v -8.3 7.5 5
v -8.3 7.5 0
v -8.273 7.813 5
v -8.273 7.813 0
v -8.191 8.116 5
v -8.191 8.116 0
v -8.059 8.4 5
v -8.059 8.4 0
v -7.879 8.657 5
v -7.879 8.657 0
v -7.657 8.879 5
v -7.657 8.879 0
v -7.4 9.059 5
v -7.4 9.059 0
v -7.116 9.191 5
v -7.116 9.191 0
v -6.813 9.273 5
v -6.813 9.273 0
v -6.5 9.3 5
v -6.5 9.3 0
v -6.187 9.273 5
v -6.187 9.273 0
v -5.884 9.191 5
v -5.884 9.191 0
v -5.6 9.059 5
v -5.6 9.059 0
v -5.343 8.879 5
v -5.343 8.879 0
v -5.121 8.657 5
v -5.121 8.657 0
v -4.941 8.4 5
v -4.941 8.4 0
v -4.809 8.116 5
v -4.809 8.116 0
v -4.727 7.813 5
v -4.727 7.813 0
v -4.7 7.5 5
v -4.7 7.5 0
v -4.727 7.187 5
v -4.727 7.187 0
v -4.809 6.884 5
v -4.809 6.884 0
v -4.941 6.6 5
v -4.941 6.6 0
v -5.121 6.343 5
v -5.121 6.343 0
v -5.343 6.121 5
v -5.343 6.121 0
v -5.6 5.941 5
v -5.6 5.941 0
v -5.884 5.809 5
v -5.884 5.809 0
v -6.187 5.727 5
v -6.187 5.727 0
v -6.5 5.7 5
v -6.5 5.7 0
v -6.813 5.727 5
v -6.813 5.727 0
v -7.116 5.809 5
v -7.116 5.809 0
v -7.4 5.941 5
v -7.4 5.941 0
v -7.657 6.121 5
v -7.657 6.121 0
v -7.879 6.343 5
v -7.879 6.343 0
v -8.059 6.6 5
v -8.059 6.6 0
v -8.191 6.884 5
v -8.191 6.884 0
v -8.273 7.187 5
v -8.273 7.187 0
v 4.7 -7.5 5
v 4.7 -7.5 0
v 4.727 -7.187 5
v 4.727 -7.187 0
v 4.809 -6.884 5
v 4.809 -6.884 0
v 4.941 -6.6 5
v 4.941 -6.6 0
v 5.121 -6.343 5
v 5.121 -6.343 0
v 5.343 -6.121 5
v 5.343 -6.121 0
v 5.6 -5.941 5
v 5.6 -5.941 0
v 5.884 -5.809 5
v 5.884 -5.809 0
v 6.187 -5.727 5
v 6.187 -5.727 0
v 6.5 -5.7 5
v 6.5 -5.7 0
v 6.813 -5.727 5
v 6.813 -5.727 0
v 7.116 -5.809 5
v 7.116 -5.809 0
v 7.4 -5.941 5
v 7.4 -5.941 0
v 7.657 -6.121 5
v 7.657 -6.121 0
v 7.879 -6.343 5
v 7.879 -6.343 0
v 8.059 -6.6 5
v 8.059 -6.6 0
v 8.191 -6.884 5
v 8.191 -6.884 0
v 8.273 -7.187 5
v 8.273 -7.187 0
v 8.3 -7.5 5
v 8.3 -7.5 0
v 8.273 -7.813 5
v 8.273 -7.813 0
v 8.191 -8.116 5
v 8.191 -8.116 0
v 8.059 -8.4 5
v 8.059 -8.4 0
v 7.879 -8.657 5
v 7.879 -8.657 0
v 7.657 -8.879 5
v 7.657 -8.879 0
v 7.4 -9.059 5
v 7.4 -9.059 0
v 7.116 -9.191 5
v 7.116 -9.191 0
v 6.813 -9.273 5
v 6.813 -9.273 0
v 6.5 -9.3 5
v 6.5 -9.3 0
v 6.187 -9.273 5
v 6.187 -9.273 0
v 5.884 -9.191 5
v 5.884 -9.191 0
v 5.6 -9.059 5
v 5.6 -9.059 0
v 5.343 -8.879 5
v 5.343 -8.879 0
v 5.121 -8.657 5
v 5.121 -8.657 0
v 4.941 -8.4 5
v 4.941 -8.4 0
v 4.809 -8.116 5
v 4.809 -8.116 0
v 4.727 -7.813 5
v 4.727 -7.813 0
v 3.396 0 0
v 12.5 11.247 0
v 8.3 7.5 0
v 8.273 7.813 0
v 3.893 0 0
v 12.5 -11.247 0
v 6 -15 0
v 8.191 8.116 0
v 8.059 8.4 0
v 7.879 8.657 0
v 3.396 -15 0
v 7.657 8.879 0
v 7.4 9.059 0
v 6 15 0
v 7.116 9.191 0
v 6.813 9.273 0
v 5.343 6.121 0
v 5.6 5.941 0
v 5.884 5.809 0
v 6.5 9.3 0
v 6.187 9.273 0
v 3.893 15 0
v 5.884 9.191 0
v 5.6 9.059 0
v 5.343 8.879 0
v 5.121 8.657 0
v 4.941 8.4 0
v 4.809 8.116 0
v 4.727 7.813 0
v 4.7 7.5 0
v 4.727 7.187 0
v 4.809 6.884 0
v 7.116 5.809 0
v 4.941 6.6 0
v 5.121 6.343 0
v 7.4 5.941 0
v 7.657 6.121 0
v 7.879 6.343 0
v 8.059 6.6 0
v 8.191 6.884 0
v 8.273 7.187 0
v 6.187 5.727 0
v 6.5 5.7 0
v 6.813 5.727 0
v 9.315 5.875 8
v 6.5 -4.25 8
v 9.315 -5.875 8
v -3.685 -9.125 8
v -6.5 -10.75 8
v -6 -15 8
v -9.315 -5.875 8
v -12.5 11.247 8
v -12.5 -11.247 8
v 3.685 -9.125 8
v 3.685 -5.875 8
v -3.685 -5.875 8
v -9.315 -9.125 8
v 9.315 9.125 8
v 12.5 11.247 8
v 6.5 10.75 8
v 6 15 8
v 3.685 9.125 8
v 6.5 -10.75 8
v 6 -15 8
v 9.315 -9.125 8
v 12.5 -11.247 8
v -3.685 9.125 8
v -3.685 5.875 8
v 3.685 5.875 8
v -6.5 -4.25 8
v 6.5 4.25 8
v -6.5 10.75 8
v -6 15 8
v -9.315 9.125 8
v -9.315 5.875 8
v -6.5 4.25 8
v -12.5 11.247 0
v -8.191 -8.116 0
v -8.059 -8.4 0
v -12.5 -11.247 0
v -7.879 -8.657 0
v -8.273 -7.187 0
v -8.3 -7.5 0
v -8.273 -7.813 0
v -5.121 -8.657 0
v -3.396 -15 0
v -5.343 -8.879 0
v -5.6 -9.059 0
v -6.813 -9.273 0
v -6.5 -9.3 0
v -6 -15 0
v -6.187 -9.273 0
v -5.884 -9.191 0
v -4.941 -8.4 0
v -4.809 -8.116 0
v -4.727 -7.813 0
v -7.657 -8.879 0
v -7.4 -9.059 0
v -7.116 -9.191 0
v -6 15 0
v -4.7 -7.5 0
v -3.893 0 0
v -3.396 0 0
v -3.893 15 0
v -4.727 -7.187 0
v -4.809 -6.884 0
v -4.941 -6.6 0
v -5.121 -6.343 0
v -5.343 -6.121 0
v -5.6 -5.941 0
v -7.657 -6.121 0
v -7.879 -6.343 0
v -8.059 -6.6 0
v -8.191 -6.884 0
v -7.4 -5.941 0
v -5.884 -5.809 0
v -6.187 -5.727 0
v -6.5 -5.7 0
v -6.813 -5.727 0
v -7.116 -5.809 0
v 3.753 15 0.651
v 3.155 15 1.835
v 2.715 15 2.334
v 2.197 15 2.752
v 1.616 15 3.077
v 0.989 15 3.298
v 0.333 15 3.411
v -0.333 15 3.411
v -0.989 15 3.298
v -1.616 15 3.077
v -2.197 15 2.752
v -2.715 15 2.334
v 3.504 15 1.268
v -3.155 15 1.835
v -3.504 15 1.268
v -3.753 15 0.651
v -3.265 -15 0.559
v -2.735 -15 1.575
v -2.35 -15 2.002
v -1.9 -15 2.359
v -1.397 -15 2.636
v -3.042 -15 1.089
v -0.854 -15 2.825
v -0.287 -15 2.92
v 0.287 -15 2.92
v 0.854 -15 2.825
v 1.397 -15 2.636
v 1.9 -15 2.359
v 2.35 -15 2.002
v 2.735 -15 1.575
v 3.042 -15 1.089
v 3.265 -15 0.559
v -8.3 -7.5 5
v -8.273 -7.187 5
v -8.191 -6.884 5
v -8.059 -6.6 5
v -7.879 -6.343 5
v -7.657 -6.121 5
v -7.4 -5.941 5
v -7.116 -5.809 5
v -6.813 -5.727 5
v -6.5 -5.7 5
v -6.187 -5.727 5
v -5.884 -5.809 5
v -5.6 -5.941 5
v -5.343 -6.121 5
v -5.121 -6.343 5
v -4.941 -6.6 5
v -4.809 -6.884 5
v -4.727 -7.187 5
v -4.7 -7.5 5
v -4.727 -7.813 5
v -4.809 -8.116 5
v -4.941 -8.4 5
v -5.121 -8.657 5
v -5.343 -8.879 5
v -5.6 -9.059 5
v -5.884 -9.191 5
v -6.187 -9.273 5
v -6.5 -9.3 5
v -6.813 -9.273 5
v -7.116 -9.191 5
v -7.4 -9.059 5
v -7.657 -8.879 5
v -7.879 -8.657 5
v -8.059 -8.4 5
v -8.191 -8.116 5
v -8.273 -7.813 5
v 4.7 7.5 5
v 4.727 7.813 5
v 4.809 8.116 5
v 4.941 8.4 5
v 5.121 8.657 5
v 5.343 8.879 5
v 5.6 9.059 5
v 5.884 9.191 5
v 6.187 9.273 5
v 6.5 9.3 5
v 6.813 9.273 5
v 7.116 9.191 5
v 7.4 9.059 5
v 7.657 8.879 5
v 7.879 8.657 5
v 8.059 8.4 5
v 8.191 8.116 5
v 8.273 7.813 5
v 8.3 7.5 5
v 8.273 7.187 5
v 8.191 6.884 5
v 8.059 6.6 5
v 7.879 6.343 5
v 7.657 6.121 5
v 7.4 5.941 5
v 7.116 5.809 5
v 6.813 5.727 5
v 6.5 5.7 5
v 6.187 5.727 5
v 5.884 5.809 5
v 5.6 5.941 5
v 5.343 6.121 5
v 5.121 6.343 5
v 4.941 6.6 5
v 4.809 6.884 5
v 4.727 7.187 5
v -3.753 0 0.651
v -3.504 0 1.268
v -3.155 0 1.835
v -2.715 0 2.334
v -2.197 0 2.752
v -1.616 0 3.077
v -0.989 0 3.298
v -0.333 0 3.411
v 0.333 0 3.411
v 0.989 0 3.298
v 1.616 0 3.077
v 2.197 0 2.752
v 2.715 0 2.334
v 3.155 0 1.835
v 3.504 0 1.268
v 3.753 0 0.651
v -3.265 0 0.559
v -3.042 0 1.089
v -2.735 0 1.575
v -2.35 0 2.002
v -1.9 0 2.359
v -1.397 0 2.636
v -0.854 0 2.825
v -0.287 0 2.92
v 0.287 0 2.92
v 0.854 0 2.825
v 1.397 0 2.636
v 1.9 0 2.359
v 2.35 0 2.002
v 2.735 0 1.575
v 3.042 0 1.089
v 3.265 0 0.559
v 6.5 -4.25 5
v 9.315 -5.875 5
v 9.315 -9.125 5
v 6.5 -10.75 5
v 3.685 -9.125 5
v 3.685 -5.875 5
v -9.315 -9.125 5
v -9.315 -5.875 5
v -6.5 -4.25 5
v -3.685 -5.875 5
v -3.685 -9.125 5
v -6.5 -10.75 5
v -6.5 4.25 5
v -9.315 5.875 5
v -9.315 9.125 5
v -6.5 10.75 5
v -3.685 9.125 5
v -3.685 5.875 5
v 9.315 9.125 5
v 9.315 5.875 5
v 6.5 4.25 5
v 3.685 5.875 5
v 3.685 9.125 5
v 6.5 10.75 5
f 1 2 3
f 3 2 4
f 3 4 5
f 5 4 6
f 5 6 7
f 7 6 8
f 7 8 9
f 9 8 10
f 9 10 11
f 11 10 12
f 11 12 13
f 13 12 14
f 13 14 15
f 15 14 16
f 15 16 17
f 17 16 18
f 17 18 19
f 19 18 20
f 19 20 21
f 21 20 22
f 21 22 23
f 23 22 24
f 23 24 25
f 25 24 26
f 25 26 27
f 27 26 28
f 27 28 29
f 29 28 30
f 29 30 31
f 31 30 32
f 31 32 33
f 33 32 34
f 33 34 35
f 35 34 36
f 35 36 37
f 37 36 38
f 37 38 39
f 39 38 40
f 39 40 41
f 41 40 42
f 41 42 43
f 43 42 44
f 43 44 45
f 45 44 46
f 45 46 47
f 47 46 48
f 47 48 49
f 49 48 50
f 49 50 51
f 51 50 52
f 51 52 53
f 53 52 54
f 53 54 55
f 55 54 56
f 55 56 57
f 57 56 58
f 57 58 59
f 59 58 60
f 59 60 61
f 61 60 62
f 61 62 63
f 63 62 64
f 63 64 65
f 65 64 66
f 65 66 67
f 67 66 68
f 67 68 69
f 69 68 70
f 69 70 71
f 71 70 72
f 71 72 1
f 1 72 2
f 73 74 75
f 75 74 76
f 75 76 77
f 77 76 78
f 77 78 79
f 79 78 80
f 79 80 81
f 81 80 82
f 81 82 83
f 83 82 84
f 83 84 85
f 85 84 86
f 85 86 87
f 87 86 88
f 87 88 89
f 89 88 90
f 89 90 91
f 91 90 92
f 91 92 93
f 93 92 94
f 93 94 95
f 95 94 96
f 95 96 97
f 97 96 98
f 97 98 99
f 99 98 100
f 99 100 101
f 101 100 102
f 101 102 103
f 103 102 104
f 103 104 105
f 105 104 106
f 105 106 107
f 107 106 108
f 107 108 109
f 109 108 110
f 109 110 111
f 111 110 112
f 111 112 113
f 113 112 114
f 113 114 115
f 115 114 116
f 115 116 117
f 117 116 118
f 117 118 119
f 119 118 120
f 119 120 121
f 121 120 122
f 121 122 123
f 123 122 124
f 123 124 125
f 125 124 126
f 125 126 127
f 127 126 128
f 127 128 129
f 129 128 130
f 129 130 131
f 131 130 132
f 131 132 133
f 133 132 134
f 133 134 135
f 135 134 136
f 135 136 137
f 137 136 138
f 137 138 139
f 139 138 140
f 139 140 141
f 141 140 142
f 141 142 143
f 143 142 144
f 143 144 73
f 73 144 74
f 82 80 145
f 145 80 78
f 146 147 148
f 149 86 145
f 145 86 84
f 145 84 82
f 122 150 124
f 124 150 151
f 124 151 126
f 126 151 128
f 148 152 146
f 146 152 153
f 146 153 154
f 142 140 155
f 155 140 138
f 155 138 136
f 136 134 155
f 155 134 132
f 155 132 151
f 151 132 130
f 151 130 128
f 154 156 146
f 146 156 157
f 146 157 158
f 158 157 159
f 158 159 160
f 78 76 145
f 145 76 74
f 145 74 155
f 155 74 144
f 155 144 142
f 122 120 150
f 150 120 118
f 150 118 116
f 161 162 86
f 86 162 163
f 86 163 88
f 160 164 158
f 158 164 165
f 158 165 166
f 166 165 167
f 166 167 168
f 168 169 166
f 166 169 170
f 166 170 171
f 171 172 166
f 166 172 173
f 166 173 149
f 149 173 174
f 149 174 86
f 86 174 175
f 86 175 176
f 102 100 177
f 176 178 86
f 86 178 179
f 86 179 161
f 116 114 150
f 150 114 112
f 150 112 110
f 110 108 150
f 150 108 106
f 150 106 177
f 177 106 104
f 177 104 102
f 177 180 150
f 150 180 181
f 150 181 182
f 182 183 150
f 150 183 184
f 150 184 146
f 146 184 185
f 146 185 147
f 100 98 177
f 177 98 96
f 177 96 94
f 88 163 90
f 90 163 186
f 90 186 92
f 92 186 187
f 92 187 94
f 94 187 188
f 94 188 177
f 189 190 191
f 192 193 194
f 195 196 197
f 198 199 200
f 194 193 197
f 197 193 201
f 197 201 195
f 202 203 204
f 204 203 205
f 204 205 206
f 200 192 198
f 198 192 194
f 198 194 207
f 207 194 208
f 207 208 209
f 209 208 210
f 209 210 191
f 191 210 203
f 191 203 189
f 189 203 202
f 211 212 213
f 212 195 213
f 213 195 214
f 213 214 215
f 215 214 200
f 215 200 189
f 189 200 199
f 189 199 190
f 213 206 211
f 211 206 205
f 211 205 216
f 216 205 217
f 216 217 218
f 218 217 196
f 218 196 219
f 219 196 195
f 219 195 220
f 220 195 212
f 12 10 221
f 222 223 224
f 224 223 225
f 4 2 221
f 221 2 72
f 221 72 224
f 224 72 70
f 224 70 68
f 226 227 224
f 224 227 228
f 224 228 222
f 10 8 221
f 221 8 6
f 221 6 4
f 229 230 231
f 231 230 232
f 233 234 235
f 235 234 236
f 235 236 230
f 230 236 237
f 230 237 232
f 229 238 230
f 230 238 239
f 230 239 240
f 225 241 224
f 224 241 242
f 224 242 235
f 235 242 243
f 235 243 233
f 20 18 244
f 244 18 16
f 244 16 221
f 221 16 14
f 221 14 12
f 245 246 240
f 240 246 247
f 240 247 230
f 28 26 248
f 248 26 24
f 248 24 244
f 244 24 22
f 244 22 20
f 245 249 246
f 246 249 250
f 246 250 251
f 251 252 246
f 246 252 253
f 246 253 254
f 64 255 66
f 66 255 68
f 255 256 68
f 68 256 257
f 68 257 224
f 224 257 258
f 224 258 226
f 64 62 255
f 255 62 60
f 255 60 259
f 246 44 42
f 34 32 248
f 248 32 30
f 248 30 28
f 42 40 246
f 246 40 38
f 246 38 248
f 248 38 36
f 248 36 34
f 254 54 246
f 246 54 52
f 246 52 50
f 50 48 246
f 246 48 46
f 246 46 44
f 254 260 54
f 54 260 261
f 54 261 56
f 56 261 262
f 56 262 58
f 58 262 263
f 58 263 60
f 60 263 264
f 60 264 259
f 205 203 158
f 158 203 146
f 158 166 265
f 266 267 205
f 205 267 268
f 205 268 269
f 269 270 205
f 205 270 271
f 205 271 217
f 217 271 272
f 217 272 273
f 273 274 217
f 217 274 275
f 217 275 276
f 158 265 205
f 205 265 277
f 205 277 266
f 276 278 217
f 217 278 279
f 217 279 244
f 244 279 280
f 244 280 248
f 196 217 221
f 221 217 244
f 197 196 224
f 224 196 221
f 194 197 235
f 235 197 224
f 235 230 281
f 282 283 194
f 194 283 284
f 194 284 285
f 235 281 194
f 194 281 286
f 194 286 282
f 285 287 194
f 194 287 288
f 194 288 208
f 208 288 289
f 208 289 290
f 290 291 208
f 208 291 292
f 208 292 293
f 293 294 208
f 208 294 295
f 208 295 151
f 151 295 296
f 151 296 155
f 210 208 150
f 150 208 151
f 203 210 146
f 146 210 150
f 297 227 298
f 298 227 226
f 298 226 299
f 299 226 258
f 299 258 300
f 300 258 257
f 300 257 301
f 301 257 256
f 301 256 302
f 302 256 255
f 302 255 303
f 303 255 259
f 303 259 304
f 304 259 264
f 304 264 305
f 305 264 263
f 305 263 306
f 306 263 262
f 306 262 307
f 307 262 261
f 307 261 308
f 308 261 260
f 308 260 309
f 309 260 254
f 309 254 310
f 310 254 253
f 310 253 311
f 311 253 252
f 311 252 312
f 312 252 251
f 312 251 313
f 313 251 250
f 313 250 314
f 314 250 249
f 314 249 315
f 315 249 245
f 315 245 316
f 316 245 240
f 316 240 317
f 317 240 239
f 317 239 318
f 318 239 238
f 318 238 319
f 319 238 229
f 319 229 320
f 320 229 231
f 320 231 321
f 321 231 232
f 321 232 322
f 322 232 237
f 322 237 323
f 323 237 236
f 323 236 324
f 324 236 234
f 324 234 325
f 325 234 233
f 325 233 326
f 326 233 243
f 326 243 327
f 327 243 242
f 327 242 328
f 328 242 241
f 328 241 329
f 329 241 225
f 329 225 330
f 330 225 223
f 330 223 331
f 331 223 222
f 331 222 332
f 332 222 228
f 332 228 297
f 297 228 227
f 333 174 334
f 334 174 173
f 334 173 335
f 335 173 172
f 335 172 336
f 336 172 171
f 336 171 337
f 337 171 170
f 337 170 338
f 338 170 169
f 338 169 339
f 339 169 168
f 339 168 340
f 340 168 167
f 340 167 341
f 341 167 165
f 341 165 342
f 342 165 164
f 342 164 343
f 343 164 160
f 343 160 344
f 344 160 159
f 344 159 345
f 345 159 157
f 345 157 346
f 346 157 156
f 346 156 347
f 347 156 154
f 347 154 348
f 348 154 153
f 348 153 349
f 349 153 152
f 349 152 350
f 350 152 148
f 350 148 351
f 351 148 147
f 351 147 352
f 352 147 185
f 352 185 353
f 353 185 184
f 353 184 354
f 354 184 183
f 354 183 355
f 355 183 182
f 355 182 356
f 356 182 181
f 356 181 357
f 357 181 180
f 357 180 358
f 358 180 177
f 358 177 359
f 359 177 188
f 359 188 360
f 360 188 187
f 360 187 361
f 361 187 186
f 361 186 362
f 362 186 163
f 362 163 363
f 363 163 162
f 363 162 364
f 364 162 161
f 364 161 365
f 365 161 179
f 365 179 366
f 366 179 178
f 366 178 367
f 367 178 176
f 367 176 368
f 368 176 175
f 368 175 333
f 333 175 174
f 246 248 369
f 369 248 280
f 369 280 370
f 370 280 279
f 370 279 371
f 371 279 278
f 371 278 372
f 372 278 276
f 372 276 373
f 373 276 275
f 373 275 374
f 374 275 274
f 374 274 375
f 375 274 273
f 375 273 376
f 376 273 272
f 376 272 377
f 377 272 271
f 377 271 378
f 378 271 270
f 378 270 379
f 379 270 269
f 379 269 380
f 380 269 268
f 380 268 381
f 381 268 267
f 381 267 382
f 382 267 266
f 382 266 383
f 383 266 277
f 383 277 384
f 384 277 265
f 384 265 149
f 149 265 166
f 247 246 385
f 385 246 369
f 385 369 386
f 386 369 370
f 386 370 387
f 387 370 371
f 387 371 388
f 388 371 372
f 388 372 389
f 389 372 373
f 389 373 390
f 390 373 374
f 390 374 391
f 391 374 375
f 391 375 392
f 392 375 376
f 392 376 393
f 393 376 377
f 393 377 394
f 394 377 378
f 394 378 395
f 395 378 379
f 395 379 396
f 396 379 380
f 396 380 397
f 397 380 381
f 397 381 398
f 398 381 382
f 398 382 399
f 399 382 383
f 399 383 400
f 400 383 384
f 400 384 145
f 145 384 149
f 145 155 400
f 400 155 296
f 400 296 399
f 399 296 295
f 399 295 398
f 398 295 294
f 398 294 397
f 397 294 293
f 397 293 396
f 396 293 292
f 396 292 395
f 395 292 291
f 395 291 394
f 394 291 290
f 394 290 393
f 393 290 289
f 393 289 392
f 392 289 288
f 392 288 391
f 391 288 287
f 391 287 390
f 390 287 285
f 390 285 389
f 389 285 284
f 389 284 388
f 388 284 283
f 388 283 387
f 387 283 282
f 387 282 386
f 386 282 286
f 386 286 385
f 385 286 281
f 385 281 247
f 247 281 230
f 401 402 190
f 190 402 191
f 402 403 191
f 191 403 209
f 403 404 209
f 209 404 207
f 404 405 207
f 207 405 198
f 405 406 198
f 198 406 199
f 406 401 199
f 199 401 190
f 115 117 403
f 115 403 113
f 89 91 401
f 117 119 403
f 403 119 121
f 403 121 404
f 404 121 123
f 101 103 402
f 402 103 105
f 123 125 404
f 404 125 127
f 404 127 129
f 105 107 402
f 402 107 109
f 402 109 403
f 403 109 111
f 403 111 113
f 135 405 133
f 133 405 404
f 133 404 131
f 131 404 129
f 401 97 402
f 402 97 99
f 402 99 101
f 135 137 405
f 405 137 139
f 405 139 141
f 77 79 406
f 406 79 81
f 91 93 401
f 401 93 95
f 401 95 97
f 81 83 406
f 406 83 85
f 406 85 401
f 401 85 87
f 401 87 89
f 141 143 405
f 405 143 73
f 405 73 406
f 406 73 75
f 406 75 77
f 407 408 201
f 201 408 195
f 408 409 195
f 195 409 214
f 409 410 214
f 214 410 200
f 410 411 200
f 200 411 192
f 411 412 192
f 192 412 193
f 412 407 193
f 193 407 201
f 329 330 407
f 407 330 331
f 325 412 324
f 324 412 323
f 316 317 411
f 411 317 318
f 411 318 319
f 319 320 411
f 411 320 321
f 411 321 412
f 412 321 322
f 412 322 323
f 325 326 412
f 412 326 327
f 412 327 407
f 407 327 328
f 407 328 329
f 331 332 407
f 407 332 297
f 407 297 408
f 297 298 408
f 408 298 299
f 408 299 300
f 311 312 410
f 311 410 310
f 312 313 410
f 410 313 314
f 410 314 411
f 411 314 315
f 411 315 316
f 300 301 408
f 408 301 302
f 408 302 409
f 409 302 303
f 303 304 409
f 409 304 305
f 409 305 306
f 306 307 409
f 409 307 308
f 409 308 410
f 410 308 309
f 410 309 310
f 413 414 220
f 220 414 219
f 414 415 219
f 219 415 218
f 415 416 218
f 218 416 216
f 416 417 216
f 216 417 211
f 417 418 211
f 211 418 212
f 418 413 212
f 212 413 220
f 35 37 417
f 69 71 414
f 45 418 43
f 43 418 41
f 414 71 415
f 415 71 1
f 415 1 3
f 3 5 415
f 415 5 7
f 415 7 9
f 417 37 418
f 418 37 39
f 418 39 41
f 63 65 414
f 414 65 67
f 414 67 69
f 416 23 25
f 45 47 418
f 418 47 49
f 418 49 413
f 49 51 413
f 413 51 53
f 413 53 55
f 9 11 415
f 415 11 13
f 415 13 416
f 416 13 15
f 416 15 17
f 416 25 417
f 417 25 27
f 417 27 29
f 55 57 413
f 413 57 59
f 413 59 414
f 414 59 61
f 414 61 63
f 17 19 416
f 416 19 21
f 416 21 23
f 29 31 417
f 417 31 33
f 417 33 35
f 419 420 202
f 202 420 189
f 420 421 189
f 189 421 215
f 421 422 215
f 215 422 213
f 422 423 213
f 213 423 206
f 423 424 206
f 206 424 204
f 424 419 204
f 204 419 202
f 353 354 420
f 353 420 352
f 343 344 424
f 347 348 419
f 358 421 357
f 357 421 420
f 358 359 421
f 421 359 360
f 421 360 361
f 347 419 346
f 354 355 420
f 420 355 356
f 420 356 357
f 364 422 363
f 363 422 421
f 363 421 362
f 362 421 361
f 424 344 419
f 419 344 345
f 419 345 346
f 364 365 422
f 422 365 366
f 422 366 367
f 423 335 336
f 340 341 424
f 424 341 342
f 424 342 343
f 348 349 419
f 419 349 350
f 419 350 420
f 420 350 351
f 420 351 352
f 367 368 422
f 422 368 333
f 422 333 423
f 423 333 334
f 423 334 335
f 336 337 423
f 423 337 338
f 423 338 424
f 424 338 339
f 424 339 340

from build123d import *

# Parameters (mm, degrees)
SCHIZZO1_R         = 1.8
MAIN_BODY_DEPTH    = 8
SCHIZZO2_R         = 3.925
THREADED_ROD_DEPTH = 15
SCHIZZO4_R         = 3.4325
MOTOR_SHAFT_DEPTH  = 15
NUT_RECESS_DEPTH   = 3


with BuildPart() as part:
    # Schizzo1 → Main Body (new body)
    with BuildSketch(Plane.XY):
        Polygon((12.5, -11.24722325), (12.5, 11.24722325), (6, 15), (-6, 15), (-12.5, 11.24722325), (-12.5, -11.24722325), (-6, -15), (6, -15), align=None)
        with Locations((-6.5, 7.5)):
            Circle(SCHIZZO1_R, mode=Mode.SUBTRACT)
        with Locations((6.5, -7.5)):
            Circle(SCHIZZO1_R, mode=Mode.SUBTRACT)
        with Locations(Location((-6.5, -7.5, 0), (0, 0, 180))):
            Circle(SCHIZZO1_R, mode=Mode.SUBTRACT)
        with Locations(Location((6.5, 7.5, 0), (0, 0, 180))):
            Circle(SCHIZZO1_R, mode=Mode.SUBTRACT)
    extrude(amount=MAIN_BODY_DEPTH)

    # Schizzo2 → Threaded rod (cut)
    with BuildSketch(Plane(origin=(0, 15, 0), x_dir=(1, 0, 0), z_dir=(0, 1, 0))):
        with Locations((0, 0.5)):
            Circle(SCHIZZO2_R)
    extrude(amount=-THREADED_ROD_DEPTH, mode=Mode.SUBTRACT)

    # Schizzo4 → Motor shaft (cut)
    with BuildSketch(Plane.XZ.offset(15)):
        with Locations((0, -0.5)):
            Circle(SCHIZZO4_R)
    extrude(amount=-MOTOR_SHAFT_DEPTH, mode=Mode.SUBTRACT)

    # Schizzo5 → Nut recess (cut)
    with BuildSketch(Plane.XY.offset(8)):
        Polygon((-9.314582562, -5.875), (-6.5, -4.25), (-3.685417438, -5.875), (-3.685417438, -9.125), (-6.5, -10.75), (-9.314582562, -9.125), align=None)
        Polygon((6.5, -4.25), (3.685417438, -5.875), (3.685417438, -9.125), (6.5, -10.75), (9.314582562, -9.125), (9.314582562, -5.875), align=None)
        Polygon((-6.5, 4.25), (-3.685417438, 5.875), (-3.685417438, 9.125), (-6.5, 10.75), (-9.314582562, 9.125), (-9.314582562, 5.875), align=None)
        Polygon((9.314582562, 5.875), (6.5, 4.25), (3.685417438, 5.875), (3.685417438, 9.125), (6.5, 10.75), (9.314582562, 9.125), align=None)
    extrude(amount=-NUT_RECESS_DEPTH, mode=Mode.SUBTRACT)


solid = part.part
